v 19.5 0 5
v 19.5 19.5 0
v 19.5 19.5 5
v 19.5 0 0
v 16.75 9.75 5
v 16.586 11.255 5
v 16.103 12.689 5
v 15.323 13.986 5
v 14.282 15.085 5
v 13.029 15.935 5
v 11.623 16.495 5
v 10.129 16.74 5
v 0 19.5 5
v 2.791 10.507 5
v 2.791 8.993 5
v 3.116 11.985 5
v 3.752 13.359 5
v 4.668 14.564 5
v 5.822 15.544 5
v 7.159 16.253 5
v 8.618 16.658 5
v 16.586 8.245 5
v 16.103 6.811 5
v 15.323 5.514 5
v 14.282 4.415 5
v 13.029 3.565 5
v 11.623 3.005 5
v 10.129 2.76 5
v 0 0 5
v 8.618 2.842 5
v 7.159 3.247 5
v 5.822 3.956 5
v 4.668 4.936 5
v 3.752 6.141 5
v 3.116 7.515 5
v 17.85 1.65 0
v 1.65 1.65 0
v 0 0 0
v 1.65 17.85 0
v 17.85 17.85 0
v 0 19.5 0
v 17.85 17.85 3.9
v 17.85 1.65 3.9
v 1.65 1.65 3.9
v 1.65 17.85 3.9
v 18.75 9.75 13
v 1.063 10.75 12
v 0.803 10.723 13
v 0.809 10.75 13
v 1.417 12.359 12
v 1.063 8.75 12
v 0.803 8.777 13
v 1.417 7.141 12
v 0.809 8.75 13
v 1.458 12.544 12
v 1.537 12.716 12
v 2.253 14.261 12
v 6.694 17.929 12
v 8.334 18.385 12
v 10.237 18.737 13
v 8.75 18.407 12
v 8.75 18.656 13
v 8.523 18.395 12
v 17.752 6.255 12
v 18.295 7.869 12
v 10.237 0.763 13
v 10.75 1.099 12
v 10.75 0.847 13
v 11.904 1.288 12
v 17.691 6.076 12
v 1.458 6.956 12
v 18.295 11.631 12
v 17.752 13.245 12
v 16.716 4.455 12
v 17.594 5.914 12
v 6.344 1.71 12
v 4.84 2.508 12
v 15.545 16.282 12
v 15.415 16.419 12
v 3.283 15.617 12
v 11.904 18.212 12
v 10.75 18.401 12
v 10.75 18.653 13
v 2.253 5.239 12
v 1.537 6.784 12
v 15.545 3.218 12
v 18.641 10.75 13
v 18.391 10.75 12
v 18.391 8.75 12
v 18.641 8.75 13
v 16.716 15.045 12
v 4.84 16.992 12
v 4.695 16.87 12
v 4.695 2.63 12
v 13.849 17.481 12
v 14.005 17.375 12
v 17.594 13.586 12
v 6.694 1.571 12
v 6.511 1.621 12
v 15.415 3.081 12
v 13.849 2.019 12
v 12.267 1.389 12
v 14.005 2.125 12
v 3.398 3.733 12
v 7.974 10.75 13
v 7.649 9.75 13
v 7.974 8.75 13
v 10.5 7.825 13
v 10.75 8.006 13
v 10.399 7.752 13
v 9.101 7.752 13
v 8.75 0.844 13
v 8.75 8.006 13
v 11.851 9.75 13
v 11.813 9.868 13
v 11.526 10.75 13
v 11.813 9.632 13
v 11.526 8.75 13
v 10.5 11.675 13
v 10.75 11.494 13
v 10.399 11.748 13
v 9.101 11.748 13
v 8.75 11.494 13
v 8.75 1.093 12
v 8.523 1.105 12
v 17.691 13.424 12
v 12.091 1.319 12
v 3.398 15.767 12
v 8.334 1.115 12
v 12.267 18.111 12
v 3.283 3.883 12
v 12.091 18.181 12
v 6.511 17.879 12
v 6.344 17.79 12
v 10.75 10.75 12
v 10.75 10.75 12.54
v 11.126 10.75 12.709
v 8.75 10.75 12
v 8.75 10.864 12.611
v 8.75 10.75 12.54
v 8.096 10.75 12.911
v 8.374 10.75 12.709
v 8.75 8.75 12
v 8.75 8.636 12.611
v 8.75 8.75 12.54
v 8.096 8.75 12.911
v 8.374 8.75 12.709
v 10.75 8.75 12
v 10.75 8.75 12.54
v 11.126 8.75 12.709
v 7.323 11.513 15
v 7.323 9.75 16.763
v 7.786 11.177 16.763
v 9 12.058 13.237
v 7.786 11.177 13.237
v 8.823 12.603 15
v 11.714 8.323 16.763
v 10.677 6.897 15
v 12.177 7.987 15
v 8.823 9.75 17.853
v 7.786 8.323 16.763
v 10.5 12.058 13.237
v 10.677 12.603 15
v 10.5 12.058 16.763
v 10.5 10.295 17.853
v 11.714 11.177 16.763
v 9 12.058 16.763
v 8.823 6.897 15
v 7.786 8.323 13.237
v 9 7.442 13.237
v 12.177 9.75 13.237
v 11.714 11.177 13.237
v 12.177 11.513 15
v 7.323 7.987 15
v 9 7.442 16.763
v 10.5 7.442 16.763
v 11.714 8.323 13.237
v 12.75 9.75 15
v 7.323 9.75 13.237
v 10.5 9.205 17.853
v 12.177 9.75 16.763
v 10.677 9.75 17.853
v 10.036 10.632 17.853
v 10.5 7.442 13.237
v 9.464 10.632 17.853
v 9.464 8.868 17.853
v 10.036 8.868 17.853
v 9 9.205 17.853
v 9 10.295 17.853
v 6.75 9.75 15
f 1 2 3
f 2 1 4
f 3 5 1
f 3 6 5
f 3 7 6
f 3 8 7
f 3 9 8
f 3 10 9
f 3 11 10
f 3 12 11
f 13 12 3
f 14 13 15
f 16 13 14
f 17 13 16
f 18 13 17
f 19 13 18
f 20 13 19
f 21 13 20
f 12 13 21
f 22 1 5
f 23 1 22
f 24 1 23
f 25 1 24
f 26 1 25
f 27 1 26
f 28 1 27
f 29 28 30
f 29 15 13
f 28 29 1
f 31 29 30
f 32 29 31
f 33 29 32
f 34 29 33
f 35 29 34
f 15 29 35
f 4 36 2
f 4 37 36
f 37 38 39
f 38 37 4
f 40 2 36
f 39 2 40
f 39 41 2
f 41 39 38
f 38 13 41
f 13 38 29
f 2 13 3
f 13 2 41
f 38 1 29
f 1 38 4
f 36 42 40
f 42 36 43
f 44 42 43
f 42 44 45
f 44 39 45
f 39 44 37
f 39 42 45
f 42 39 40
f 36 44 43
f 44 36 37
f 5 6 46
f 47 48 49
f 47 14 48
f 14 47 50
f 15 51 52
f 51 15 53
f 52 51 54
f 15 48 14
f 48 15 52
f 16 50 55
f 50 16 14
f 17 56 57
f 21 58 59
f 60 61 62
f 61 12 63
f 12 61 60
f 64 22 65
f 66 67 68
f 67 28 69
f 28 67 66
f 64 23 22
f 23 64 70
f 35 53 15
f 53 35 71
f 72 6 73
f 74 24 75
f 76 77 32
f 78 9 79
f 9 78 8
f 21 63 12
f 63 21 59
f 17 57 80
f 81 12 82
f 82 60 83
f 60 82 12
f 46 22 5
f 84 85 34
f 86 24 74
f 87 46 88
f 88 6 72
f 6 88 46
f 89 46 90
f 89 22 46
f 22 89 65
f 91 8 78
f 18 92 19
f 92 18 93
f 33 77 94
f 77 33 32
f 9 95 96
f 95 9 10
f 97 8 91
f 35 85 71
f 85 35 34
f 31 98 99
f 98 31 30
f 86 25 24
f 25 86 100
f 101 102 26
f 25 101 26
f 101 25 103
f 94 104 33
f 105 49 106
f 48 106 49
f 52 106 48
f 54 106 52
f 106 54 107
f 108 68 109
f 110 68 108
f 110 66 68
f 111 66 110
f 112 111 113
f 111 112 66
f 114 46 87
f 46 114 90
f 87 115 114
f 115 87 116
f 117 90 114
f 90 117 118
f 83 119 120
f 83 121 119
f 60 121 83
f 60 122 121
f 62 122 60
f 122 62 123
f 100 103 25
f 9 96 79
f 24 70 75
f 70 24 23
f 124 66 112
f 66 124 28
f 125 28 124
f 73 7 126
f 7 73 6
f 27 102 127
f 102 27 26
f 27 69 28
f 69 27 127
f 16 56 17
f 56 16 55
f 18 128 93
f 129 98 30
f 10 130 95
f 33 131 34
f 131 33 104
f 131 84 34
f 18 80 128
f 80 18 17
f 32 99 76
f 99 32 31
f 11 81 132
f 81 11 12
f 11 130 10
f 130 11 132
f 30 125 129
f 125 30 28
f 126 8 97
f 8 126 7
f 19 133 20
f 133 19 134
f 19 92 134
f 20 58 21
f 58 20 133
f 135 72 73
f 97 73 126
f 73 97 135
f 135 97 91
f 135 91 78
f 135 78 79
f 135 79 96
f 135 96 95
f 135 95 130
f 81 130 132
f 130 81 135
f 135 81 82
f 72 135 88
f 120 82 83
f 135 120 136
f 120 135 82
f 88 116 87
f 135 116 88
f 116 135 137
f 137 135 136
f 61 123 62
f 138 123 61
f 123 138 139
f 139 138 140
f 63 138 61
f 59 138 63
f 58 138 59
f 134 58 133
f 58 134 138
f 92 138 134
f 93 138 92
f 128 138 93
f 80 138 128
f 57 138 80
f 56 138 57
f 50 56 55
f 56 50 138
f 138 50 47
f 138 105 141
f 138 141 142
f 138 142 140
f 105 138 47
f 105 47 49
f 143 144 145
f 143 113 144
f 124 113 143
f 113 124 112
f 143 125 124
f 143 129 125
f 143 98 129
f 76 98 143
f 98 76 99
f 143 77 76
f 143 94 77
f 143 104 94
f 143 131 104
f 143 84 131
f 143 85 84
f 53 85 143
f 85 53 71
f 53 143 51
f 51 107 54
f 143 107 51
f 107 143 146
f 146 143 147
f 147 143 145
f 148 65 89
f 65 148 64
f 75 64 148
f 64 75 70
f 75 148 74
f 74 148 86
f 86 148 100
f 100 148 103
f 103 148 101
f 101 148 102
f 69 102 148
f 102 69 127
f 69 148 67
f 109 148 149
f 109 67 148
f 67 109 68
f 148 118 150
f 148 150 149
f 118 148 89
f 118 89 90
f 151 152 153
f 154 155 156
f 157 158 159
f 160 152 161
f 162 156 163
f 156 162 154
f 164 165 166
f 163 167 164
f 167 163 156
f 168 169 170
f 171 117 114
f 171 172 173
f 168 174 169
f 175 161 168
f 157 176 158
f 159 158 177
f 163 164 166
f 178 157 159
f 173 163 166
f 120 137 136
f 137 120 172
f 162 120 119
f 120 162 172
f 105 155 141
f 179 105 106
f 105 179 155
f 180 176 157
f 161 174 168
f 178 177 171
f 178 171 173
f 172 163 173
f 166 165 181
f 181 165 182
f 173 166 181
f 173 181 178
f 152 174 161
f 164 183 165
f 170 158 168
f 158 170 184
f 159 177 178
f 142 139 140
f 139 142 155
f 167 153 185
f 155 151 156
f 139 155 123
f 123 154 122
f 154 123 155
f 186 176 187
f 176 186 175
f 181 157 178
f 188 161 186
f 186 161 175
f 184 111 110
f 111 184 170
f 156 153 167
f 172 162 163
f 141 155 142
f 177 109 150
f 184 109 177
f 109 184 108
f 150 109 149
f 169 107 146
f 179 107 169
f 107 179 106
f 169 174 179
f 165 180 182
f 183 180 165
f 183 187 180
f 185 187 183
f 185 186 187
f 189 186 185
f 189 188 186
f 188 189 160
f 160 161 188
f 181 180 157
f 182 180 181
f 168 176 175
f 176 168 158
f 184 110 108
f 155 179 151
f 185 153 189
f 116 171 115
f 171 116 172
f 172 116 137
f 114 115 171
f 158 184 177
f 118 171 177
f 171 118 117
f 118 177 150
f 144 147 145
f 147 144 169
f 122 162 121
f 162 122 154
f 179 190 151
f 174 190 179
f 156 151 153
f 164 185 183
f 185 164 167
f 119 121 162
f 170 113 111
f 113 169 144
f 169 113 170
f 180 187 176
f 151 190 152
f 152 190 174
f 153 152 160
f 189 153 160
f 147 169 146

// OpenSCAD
// file: CommonModules.scad
//    $$$$$$\   $$$$$$\   $$$$$$\  $$\   $$\ $$$$$$\ $$$$$$$\  $$$$$$$$\ 
//    $$  __$$\ $$  __$$\ $$  __$$\ $$ |  $$ |\_$$  _|$$  __$$\ $$  _____|
//    $$ /  $$ |$$ /  \__|$$ /  $$ |$$ |  $$ |  $$ |  $$ |  $$ |$$ |      
//    $$$$$$$$ |$$ |      $$ |  $$ |$$ |  $$ |  $$ |  $$$$$$$  |$$$$$\    
//    $$  __$$ |$$ |      $$ |  $$ |$$ |  $$ |  $$ |  $$  __$$< $$  __|   
//    $$ |  $$ |$$ |  $$\ $$ $$\$$ |$$ |  $$ |  $$ |  $$ |  $$ |$$ |      
//    $$ |  $$ |\$$$$$$  |\$$$$$$ / \$$$$$$  |$$$$$$\ $$ |  $$ |$$$$$$$$\ 
//    \__|  \__| \______/  \___$$$\  \______/ \______|\__|  \__|\________|
//                            \___|                                      
//      
//       Print and play - OpenScad project - by Bekkalizer and ChatGPT
// 
// This file is part of the Acquire stl project.
// Copyright (C) 2025 Bekkalizer
//
// Acquire stl project is free software: you can redistribute it and/or modify
// it under the terms of the GNU General Public License as published
// by the Free Software Foundation, either version 3 of the License,
// or (at your option) any later version.
//
// Acquire stl project is distributed in the hope that it will be useful,
// but WITHOUT ANY WARRANTY; without even the implied warranty of
// MERCHANTABILITY or FITNESS FOR A PARTICULAR PURPOSE. See the
// GNU General Public License for more details.
//
// You should have received a copy of the GNU General Public License
// along with this program. If not, see <https://www.gnu.org/licenses/>.

module cube_with_extruded_bottom( cube_size = [19.5, 19.5, 5] ) {
    //Main build script parameters:
    max_width = 19.2;
    top_lip = 2;
    top_height = 3;
    //Calculated hole size:
    inside_margins = 1;
    hole_width = max_width - 2 * (top_lip) + inside_margins;
    hole_height = top_height + inside_margins;
    
    hole_size = [hole_width, hole_width, hole_height]; // Hole dimensions (same height as cube)
    hole_offset = [(cube_size[0] - hole_size[0]) / 2, (cube_size[1] - hole_size[1]) / 2, -0.1]; // Centered on bottom
    difference() {
        // Main Cube
        cube(cube_size);
        
        // Hole Cube (subtracting from bottom)
        translate(hole_offset)
            cube(hole_size);
    }
}
// main file
//    $$$$$$\   $$$$$$\   $$$$$$\  $$\   $$\ $$$$$$\ $$$$$$$\  $$$$$$$$\ 
//    $$  __$$\ $$  __$$\ $$  __$$\ $$ |  $$ |\_$$  _|$$  __$$\ $$  _____|
//    $$ /  $$ |$$ /  \__|$$ /  $$ |$$ |  $$ |  $$ |  $$ |  $$ |$$ |      
//    $$$$$$$$ |$$ |      $$ |  $$ |$$ |  $$ |  $$ |  $$$$$$$  |$$$$$\    
//    $$  __$$ |$$ |      $$ |  $$ |$$ |  $$ |  $$ |  $$  __$$< $$  __|   
//    $$ |  $$ |$$ |  $$\ $$ $$\$$ |$$ |  $$ |  $$ |  $$ |  $$ |$$ |      
//    $$ |  $$ |\$$$$$$  |\$$$$$$ / \$$$$$$  |$$$$$$\ $$ |  $$ |$$$$$$$$\ 
//    \__|  \__| \______/  \___$$$\  \______/ \______|\__|  \__|\________|
//                            \___|                                      
//      
//       Print and play - OpenScad project - by Bekkalizer and ChatGPT

use <CommonModules.scad>

//Parameters
crown_body_bottom_radius = 7;
crown_body_top_radius = 9;
crown_body_height = 8;
crown_sphere_radius = 3;

bottom_width = 19.5;
bottom_height = 5;

cage_width = 2;
cage_height = 1;


union () {
    cube_with_extruded_bottom([bottom_width, bottom_width, bottom_height]);

    //crown_body
    translate([bottom_width/2,bottom_width/2,bottom_height]) {
        difference () {
            cylinder(crown_body_height, crown_body_bottom_radius, crown_body_top_radius);
            translate([cage_width/2, cage_width/2, crown_body_height-cage_height])
                cube([crown_body_top_radius,crown_body_top_radius,cage_height]);
            translate([-cage_width/2-crown_body_top_radius, cage_width/2, crown_body_height-cage_height])
                cube([crown_body_top_radius,crown_body_top_radius,cage_height]);
            translate([-cage_width/2-crown_body_top_radius, -cage_width/2-crown_body_top_radius, crown_body_height-cage_height])
                cube([crown_body_top_radius,crown_body_top_radius,cage_height]);
            translate([cage_width/2, -cage_width/2-crown_body_top_radius, crown_body_height-cage_height])
                cube([crown_body_top_radius,crown_body_top_radius,cage_height]);
        }
    }
    
    translate([bottom_width/2,bottom_width/2,bottom_height+crown_body_height+crown_sphere_radius-cage_height])
        sphere(crown_sphere_radius);
}
